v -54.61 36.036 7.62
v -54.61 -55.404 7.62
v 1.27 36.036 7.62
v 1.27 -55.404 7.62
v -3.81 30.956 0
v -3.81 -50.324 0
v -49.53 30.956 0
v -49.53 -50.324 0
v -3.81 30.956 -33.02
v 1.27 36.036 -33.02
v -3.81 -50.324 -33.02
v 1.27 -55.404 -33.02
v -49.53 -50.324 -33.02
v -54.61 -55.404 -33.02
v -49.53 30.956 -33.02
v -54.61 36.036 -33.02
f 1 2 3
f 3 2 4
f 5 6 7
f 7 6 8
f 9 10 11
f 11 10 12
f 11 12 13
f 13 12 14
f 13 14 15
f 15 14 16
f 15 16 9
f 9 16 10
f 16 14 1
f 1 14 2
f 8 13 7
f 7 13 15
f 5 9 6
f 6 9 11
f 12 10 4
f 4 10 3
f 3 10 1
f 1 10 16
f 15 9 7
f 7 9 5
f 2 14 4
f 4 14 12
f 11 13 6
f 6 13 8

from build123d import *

# Parameters (mm, degrees)
SKETCH1_W           = 45.72
SKETCH1_H           = 81.28
BOSS_EXTRUDE1_DEPTH = 7.62
SKETCH7_W           = 40.64
SKETCH7_H           = 81.28
BOSS_EXTRUDE3_DEPTH = 5.08
SKETCH8_W           = 40.64
SKETCH8_H           = 81.28
BOSS_EXTRUDE4_DEPTH = 5.08
SKETCH9_W           = 55.88
SKETCH9_H           = 40.64
BOSS_EXTRUDE5_DEPTH = 5.08
SKETCH10_W          = 55.88
SKETCH10_H          = 40.64
BOSS_EXTRUDE6_DEPTH = 5.08


with BuildPart() as part:
    # Sketch1 → Boss-Extrude1 (new body)
    with BuildSketch(Plane.XY):
        with Locations((-26.67, -9.68375)):
            Rectangle(SKETCH1_W, SKETCH1_H)
    extrude(amount=BOSS_EXTRUDE1_DEPTH)

    # Sketch7 → Boss-Extrude3 (add)
    with BuildSketch(Plane.ZY.offset(49.53)):
        with Locations((-12.7, -9.68375)):
            Rectangle(SKETCH7_W, SKETCH7_H)
    extrude(amount=BOSS_EXTRUDE3_DEPTH)

    # Sketch8 → Boss-Extrude4 (add)
    with BuildSketch(Plane(origin=(-3.81, 0, 0), x_dir=(0, 0, -1), z_dir=(1, 0, 0))):
        with Locations((12.7, -9.68375)):
            Rectangle(SKETCH8_W, SKETCH8_H)
    extrude(amount=BOSS_EXTRUDE4_DEPTH)

    # Sketch9 → Boss-Extrude5 (add)
    with BuildSketch(Plane(origin=(0, 30.95625, 0), x_dir=(1, 0, 0), z_dir=(0, 1, 0))):
        with Locations((-26.67, 12.7)):
            Rectangle(SKETCH9_W, SKETCH9_H)
    extrude(amount=BOSS_EXTRUDE5_DEPTH)

    # Sketch10 → Boss-Extrude6 (add)
    with BuildSketch(Plane.XZ.offset(50.32375)):
        with Locations((-26.67, -12.7)):
            Rectangle(SKETCH10_W, SKETCH10_H)
    extrude(amount=BOSS_EXTRUDE6_DEPTH)


solid = part.part
